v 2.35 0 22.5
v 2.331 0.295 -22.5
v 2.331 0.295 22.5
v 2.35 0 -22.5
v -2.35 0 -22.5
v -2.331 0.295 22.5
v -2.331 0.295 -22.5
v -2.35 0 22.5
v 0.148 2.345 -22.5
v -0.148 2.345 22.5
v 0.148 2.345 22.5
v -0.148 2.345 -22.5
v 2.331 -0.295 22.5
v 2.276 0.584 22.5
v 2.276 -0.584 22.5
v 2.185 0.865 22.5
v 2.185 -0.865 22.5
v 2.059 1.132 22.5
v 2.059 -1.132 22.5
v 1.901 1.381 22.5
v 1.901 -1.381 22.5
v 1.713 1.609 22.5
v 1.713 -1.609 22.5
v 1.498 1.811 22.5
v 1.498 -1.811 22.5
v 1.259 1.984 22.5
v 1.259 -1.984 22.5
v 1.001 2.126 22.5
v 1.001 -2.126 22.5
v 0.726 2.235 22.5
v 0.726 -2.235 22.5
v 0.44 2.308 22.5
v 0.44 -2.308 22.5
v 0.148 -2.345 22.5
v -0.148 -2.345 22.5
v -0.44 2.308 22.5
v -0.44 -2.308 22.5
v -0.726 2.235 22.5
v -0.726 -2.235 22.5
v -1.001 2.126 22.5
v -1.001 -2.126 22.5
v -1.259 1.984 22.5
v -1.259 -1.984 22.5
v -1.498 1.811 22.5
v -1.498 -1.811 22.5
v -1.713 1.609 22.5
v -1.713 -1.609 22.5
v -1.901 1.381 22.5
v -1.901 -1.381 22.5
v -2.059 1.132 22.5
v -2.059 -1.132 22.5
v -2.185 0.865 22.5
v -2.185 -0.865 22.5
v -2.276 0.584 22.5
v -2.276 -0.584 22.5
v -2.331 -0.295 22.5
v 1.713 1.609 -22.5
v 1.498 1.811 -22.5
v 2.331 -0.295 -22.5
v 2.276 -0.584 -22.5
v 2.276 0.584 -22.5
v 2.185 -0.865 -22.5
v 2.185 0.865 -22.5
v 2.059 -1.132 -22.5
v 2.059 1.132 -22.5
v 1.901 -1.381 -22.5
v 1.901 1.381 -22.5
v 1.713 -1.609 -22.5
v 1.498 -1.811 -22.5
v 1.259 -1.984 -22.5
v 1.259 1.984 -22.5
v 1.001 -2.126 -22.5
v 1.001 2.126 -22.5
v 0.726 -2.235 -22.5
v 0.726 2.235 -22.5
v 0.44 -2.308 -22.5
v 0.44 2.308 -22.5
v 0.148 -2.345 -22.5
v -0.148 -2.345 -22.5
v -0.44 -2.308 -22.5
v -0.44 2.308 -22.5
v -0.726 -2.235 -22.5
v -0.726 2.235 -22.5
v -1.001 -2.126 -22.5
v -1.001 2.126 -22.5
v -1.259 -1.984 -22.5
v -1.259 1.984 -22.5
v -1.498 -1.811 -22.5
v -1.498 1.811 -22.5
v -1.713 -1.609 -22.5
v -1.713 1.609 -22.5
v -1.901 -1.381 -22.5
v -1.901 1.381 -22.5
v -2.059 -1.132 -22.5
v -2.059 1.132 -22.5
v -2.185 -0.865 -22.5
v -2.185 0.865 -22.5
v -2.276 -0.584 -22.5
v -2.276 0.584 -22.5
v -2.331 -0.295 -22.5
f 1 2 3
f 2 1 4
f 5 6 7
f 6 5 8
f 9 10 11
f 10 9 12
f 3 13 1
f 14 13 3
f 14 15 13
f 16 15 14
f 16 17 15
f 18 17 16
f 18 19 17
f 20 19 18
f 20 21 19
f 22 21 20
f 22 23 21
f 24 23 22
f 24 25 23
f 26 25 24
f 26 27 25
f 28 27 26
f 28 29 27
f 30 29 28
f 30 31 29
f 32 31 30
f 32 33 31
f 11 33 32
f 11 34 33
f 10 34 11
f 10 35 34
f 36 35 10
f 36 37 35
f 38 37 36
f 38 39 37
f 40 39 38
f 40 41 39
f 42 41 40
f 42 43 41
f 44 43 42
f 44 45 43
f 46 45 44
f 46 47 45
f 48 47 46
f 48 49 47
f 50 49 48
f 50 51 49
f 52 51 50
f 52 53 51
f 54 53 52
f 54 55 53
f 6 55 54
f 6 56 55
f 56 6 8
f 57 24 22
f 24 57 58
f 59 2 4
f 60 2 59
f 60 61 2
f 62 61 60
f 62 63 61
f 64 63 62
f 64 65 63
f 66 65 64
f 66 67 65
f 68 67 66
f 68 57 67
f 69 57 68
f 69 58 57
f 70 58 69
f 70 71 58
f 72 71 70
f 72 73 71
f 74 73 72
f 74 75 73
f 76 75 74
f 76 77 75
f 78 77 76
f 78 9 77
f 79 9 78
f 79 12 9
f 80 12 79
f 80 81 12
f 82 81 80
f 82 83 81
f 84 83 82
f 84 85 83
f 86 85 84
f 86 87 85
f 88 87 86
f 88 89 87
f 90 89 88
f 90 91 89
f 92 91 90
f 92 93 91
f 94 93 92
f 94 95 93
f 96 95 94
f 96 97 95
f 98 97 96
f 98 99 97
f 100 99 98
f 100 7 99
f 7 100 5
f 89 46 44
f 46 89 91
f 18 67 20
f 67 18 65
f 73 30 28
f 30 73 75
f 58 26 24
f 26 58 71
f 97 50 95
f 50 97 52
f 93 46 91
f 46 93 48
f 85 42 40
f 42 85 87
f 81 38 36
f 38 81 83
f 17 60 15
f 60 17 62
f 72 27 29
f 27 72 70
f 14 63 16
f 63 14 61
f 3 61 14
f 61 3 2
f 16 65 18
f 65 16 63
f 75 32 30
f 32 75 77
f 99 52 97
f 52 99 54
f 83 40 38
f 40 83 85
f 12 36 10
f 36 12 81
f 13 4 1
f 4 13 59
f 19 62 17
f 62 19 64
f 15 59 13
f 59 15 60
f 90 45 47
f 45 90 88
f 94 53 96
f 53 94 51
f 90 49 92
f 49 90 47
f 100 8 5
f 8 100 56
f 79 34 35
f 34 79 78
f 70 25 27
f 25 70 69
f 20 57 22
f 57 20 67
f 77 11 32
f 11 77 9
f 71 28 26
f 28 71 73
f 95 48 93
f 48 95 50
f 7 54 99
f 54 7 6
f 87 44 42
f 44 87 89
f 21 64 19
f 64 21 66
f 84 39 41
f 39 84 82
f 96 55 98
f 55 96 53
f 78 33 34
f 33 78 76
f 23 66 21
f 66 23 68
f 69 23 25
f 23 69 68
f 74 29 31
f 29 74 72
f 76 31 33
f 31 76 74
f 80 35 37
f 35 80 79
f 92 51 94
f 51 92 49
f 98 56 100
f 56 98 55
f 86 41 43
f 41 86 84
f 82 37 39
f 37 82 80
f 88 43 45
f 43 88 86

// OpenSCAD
$fn = 50;


difference() {
	union() {
		translate(v = [0, 0, -22.5000000000]) {
			cylinder(h = 45, r = 2.3500000000);
		}
	}
	union() {
		translate(v = [0, 0, -100.0000000000]) {
			cylinder(h = 200, r = 0);
		}
	}
}
